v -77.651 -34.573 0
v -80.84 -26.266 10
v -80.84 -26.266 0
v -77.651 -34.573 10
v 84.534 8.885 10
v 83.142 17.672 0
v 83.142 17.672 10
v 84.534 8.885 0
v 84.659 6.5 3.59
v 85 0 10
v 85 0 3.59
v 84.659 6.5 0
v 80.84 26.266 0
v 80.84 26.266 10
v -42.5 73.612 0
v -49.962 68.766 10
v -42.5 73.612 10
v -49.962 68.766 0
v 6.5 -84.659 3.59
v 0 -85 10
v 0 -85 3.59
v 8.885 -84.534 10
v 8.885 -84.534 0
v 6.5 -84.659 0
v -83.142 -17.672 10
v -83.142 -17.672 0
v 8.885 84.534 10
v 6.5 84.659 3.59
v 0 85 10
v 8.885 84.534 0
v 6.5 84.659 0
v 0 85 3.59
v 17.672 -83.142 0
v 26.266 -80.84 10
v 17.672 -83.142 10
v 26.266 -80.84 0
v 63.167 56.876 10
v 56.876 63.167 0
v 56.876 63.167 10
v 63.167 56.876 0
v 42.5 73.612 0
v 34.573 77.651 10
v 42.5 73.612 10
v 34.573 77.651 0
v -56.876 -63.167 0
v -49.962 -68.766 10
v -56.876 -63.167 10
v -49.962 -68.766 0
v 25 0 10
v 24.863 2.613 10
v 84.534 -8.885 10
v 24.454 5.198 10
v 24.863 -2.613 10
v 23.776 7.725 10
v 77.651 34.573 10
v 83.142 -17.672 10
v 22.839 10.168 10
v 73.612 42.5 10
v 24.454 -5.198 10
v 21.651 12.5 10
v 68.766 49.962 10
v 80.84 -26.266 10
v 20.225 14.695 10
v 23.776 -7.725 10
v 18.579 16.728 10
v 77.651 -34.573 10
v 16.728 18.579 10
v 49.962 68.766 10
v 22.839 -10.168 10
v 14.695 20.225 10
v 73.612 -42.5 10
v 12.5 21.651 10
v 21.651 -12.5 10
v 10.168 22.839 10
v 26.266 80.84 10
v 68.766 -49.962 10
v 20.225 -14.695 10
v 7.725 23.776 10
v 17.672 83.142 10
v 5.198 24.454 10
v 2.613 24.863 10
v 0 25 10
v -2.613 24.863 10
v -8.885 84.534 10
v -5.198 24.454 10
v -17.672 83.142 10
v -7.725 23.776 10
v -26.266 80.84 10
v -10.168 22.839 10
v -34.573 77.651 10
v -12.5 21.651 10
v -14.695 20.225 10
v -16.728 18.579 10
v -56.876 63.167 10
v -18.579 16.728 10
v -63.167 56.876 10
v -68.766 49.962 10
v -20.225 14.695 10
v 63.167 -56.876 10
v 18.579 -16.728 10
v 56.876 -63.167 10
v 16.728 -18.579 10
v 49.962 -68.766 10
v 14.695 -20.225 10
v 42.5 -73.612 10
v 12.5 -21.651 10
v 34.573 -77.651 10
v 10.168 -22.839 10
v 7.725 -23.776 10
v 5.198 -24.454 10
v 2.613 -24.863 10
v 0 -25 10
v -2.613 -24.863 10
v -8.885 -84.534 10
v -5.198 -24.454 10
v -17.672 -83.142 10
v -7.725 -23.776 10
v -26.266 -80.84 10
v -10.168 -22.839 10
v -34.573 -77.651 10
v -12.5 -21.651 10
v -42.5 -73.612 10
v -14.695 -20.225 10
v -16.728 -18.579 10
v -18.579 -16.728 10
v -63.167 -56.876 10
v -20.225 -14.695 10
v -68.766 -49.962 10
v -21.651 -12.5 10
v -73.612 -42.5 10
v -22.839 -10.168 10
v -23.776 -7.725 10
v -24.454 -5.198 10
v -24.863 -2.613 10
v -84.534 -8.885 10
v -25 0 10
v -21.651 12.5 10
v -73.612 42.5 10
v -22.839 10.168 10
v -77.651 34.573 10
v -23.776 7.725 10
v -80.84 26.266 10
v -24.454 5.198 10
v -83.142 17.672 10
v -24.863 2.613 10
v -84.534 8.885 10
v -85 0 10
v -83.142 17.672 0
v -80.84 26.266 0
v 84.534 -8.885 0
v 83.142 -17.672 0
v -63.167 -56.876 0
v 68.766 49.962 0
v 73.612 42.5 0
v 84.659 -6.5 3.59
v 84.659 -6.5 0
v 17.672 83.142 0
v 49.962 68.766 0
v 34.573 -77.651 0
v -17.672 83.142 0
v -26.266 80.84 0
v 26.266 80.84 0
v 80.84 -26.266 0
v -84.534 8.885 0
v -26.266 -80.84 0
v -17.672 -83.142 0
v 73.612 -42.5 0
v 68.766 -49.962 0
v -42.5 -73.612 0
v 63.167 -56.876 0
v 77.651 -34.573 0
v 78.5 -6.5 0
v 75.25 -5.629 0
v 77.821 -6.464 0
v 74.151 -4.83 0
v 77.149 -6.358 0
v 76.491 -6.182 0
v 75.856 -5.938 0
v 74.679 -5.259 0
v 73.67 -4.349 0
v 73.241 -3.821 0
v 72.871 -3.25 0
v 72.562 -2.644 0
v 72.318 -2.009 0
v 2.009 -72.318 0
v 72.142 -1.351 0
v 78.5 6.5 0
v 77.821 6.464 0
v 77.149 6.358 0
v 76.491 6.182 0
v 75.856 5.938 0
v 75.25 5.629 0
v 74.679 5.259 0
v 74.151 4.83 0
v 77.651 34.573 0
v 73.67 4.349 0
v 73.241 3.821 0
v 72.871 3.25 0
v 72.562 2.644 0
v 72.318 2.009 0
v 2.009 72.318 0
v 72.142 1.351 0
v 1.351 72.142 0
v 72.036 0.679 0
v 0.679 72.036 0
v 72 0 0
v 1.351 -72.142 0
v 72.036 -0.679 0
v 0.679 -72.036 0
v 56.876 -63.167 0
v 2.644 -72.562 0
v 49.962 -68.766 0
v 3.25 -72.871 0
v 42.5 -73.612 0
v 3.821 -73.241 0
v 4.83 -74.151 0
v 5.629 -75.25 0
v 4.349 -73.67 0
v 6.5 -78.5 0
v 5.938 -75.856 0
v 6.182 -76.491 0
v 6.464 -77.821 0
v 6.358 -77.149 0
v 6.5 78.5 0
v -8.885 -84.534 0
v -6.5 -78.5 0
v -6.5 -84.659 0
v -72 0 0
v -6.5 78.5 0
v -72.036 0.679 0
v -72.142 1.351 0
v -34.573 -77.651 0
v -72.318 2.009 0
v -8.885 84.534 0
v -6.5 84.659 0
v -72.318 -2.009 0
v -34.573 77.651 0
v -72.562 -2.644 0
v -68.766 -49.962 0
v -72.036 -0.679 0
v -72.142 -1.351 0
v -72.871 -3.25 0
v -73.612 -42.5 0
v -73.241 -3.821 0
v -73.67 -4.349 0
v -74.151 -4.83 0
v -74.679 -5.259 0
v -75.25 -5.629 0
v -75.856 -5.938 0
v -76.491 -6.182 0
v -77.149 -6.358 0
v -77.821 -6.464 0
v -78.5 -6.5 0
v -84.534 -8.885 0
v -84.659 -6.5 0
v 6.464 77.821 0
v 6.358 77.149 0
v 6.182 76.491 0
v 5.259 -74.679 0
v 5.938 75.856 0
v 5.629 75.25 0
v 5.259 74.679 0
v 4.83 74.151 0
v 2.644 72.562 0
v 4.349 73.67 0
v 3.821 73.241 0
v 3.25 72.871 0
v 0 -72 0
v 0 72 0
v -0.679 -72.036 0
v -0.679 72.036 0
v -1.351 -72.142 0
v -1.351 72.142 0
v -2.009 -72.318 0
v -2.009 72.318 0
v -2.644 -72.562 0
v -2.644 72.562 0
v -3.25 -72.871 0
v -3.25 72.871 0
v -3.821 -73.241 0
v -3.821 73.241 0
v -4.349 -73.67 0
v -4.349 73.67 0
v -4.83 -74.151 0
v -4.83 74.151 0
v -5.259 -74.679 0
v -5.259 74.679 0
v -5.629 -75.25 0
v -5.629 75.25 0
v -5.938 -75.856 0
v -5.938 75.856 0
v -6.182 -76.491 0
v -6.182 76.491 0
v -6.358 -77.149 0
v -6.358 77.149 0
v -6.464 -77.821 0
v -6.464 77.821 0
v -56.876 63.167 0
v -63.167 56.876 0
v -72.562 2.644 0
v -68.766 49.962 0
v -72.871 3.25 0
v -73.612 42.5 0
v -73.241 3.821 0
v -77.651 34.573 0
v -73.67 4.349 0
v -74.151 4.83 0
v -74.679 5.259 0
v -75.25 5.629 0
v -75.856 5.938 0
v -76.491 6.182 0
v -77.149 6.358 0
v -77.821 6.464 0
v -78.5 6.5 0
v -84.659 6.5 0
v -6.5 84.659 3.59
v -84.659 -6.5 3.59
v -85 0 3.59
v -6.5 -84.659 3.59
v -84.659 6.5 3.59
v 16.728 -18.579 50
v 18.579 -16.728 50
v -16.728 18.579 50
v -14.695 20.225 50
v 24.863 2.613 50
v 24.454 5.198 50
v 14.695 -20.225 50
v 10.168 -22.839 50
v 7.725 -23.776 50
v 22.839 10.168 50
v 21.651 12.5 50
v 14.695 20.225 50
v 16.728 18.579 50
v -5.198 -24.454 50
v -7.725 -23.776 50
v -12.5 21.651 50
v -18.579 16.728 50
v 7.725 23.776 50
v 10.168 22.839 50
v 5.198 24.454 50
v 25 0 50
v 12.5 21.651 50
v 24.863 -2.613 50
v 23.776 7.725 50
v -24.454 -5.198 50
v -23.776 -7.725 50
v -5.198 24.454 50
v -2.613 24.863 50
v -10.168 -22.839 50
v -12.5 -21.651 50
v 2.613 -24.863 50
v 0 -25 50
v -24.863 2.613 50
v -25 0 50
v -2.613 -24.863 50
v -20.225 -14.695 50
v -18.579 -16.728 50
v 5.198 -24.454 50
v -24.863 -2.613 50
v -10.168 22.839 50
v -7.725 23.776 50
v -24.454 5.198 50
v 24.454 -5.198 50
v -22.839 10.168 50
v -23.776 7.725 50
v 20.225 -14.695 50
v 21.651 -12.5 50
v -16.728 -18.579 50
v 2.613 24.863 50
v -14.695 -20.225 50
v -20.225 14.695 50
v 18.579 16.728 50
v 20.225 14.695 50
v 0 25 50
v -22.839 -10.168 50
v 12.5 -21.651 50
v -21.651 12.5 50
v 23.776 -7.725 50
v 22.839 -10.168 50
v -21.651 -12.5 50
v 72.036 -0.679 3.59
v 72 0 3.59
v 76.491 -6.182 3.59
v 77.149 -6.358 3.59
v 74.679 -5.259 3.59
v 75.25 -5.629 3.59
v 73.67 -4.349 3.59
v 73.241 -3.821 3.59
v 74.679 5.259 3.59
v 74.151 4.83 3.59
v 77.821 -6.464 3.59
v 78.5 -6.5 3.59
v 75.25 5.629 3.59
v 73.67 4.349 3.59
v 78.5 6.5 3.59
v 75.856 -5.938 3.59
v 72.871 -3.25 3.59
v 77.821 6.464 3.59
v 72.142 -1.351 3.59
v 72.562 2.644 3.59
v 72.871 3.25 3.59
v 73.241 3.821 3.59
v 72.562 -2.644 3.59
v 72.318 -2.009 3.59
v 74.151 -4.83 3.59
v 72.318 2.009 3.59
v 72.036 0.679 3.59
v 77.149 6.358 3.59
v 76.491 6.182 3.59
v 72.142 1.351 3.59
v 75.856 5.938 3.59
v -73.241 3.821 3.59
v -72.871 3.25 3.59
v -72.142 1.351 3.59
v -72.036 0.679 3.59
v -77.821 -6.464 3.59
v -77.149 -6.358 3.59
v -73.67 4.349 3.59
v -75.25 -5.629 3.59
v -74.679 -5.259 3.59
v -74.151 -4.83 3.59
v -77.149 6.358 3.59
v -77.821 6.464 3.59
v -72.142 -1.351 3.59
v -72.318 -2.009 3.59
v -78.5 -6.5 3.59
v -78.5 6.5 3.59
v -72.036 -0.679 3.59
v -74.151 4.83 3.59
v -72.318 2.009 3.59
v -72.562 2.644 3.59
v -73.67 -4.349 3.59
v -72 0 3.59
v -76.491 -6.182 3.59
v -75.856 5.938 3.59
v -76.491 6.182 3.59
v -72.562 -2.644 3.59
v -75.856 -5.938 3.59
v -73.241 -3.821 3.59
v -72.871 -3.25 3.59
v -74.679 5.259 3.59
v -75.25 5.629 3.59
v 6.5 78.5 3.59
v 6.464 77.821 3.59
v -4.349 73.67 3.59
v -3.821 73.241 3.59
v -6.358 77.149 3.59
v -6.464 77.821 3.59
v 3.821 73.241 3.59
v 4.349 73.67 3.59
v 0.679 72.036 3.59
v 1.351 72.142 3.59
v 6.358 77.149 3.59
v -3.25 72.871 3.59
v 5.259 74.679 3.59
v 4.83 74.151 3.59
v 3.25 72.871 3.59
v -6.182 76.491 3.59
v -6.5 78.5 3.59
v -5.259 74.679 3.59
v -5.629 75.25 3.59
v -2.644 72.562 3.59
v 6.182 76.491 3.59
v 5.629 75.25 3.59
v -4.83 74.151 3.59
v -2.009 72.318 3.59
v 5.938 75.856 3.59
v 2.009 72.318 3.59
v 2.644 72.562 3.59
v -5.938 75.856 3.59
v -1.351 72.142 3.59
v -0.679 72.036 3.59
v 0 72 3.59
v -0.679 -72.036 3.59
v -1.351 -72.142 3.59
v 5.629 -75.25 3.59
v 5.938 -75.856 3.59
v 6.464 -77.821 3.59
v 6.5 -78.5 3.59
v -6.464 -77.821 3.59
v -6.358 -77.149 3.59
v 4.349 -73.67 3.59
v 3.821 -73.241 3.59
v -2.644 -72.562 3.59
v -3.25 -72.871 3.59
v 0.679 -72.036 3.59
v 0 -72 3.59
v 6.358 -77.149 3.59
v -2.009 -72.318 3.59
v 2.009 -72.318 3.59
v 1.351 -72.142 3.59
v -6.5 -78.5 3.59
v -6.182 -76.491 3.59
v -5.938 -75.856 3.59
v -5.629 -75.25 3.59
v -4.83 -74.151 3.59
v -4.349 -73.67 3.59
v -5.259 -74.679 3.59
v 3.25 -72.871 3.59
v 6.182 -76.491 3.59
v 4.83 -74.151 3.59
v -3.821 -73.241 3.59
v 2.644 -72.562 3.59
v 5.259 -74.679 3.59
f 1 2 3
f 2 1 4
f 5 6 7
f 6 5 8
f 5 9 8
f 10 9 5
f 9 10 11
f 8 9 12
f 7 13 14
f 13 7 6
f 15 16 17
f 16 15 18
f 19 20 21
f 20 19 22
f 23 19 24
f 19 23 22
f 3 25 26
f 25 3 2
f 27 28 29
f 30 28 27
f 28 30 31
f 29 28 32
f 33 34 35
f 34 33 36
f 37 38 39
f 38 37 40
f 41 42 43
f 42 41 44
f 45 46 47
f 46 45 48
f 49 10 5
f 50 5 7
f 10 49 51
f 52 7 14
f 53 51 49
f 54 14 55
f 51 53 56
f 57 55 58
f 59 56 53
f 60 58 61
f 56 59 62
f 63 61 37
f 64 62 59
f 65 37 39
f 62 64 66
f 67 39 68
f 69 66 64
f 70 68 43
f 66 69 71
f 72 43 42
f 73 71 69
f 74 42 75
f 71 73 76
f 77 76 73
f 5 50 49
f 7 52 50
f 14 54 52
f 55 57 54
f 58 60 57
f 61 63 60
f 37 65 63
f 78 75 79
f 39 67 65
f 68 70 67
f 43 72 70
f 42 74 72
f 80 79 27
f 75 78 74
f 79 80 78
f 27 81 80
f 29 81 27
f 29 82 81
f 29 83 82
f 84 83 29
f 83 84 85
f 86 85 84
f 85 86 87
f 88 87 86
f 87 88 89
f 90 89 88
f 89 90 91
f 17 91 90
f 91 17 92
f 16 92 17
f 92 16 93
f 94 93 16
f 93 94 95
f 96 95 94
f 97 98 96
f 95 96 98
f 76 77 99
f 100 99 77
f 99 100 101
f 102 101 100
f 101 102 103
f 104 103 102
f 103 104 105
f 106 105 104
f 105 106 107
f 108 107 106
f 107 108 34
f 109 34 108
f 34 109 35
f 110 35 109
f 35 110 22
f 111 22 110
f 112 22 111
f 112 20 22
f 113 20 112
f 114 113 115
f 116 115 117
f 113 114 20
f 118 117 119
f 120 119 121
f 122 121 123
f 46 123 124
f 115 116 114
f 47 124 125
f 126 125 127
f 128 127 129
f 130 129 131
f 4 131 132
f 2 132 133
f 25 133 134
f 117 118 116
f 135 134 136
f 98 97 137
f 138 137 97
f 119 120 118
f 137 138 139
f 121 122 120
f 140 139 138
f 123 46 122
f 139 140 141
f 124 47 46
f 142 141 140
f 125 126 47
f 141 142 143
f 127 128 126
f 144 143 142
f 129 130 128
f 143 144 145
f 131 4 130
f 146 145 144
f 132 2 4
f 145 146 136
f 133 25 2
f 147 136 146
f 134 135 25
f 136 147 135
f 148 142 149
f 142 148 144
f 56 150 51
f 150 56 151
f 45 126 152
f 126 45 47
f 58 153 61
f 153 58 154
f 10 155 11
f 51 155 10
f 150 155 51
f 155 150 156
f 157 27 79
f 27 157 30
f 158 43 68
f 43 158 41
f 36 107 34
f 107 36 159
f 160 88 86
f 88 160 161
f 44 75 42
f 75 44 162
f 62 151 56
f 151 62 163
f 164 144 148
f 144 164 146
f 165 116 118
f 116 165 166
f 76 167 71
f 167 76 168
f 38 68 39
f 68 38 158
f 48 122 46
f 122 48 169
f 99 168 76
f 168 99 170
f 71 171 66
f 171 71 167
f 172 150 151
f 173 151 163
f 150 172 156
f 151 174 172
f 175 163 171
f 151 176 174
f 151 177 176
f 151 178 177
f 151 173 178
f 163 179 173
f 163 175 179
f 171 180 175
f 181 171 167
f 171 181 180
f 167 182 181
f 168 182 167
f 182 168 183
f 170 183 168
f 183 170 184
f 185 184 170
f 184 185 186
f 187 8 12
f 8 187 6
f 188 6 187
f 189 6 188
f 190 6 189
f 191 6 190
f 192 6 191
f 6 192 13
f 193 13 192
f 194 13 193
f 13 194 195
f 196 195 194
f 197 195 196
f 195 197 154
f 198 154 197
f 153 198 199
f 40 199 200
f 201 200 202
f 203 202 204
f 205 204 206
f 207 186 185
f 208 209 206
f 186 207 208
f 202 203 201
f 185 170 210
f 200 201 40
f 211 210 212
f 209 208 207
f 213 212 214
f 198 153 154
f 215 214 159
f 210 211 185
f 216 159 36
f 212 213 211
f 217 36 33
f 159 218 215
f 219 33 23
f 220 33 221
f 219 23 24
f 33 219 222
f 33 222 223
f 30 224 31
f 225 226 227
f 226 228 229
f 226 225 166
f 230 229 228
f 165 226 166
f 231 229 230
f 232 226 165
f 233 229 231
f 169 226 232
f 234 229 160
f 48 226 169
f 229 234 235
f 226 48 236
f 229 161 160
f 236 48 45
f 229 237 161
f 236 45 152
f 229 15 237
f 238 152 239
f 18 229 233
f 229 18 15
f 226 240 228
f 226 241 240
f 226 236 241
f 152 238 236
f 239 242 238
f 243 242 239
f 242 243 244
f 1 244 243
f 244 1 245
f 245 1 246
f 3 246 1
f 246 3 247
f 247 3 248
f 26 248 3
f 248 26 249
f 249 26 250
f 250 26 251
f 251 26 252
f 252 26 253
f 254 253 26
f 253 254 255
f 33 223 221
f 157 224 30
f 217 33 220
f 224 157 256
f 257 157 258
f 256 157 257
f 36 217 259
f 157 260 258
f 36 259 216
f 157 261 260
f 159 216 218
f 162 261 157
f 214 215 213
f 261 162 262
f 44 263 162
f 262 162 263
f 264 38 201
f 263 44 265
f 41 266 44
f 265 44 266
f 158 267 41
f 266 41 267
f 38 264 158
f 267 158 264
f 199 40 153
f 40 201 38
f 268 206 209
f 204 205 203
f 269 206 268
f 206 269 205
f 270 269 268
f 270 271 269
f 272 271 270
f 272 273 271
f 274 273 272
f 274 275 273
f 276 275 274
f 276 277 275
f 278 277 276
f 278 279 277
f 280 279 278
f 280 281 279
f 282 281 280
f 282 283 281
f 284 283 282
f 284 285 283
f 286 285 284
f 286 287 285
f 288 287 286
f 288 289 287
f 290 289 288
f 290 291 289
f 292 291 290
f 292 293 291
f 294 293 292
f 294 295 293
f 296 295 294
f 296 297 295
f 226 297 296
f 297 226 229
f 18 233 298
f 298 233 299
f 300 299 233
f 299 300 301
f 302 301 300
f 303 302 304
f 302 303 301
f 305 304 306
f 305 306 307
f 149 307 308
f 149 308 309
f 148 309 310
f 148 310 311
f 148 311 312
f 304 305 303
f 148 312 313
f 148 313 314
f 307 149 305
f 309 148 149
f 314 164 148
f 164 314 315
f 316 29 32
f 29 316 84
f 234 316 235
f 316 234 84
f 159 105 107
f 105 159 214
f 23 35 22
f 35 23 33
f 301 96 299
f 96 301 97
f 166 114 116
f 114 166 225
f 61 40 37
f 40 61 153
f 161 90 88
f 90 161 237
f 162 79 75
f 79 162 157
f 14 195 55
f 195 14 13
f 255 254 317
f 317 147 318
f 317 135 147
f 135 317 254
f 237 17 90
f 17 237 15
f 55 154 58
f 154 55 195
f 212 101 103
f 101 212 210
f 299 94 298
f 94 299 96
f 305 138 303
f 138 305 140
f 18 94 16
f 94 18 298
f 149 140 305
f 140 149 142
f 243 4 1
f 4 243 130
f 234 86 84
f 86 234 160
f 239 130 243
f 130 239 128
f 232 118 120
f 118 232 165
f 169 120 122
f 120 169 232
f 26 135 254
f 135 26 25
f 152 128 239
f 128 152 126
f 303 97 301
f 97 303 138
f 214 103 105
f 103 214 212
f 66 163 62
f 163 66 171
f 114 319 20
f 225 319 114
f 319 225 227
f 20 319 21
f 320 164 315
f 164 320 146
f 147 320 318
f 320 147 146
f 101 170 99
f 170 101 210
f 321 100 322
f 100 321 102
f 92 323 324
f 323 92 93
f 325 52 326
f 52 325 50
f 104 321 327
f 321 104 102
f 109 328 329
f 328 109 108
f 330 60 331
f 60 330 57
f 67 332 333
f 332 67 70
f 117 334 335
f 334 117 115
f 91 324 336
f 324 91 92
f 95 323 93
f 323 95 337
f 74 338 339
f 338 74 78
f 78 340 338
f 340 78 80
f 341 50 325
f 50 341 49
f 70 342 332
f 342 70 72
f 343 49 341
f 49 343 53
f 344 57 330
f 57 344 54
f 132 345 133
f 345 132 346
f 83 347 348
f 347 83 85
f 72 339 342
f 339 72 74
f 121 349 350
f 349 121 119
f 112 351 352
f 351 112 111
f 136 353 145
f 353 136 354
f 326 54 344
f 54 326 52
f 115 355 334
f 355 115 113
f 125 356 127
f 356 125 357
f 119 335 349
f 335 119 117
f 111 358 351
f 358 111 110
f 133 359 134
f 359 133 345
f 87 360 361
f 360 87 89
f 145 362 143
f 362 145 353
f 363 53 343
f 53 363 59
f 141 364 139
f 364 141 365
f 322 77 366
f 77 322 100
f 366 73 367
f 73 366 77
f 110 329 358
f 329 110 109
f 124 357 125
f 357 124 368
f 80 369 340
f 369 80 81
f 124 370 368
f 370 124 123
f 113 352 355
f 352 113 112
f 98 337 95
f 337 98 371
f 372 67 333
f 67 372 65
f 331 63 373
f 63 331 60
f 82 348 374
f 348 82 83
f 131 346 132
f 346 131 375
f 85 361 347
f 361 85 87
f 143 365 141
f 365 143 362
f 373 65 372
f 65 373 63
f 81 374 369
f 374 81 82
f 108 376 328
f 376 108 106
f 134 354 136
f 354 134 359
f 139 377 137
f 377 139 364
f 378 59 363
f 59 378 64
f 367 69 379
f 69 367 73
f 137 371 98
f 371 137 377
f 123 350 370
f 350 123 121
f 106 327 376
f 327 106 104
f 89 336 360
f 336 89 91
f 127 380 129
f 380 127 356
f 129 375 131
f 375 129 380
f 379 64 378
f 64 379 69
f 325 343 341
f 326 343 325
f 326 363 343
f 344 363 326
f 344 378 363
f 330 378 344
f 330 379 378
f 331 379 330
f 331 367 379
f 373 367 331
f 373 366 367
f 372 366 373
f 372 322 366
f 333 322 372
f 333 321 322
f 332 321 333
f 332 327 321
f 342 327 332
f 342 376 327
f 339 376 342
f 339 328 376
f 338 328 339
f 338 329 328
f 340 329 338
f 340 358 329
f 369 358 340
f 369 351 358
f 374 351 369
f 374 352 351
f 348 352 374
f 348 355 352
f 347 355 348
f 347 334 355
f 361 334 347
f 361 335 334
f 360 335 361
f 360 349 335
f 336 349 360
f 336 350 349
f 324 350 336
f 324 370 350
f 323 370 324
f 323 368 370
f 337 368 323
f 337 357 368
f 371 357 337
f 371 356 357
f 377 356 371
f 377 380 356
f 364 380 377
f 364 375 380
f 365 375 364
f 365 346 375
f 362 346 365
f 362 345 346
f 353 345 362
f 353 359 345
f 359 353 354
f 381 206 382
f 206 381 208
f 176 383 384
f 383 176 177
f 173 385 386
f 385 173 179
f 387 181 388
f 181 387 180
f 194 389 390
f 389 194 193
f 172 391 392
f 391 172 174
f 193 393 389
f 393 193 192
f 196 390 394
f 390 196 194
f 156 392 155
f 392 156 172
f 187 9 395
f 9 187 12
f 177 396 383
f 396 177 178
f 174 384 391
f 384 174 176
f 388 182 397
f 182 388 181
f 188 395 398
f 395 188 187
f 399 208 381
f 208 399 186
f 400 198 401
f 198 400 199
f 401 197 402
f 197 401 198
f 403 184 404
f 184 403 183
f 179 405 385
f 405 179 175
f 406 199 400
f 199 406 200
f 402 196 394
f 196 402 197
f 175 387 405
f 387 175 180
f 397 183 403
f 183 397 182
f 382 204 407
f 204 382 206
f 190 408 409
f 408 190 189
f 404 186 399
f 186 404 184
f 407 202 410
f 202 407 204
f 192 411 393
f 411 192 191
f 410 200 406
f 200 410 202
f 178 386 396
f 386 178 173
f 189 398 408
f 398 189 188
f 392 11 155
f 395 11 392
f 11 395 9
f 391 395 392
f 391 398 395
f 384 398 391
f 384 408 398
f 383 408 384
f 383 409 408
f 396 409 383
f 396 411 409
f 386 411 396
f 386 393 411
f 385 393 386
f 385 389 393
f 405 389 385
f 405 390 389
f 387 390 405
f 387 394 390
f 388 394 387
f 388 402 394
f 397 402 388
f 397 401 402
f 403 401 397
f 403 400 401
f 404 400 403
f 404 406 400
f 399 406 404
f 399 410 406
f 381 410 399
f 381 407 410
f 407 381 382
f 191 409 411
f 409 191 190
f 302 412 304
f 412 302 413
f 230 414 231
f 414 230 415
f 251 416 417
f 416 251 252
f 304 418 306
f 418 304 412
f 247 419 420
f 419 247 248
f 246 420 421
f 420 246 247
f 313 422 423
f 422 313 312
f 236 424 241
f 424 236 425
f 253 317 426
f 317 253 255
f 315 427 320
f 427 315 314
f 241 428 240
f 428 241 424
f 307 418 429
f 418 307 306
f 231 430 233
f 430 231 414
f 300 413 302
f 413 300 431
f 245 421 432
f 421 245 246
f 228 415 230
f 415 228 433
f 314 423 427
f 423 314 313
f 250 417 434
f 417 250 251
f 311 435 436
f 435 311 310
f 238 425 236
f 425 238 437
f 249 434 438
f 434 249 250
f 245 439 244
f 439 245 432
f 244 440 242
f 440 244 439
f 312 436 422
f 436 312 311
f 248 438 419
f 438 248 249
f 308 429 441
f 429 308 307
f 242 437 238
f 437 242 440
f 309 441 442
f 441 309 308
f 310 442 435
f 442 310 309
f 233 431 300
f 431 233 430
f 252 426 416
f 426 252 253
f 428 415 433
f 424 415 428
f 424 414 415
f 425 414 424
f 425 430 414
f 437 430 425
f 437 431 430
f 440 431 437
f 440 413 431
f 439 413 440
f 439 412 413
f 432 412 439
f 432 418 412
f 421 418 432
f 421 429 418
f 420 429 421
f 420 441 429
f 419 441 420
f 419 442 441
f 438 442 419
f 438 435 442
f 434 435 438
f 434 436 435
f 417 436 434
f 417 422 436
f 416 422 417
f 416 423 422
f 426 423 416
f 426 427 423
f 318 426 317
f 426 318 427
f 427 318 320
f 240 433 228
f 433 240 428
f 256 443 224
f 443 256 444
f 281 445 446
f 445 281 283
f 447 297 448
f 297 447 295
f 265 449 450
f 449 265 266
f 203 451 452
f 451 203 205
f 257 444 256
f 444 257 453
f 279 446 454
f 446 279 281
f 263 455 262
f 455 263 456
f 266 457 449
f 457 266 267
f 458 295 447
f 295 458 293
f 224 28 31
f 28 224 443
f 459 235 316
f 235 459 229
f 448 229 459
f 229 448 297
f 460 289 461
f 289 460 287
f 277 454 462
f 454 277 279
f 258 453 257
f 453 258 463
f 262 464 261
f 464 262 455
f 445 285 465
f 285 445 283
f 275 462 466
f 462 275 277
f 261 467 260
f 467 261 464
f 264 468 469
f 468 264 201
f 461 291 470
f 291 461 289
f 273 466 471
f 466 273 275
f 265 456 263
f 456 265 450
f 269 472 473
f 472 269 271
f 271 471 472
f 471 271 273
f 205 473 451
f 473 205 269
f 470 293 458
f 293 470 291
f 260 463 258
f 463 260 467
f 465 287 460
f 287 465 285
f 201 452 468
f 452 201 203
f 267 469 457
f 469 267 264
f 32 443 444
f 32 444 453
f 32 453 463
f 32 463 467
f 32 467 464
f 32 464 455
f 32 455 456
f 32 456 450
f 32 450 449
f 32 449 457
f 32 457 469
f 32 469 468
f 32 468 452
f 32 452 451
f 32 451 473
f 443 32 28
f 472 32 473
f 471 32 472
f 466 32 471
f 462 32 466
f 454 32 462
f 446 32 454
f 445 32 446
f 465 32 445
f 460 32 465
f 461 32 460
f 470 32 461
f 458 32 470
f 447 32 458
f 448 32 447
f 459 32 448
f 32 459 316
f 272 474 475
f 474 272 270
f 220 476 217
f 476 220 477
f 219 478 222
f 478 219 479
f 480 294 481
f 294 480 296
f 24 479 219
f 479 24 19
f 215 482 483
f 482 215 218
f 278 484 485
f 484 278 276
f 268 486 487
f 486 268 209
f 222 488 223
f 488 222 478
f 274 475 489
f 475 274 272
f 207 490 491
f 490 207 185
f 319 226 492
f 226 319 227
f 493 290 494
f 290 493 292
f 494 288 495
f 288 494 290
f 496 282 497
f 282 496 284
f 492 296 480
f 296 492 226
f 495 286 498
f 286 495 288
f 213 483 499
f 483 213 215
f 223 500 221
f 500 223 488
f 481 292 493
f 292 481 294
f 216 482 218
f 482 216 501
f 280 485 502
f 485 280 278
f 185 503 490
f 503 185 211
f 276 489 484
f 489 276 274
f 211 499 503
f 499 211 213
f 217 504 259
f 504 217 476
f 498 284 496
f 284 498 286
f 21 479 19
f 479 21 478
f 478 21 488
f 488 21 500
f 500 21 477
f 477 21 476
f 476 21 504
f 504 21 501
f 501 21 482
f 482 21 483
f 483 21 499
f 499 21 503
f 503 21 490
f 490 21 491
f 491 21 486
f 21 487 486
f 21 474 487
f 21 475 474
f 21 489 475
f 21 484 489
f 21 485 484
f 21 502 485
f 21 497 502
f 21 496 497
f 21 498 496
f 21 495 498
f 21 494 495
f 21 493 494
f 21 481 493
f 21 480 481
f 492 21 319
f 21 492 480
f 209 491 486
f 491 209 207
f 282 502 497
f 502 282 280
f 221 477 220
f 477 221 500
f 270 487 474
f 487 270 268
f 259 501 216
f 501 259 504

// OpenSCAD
// Globals

$fn = 60;
eps = 0.01;

base_diameter = 170;
base_height   = 10;

post_diameter = 50;
post_height = base_height + 40;

notch_diameter = 13;
notch_height   = 3.6;
notch_length   = 30;

notch_inset = base_diameter/2 - notch_diameter/2;

// Geometry

module notch(h, d, l)
{
    hull()
    {
        cylinder(h=h, d=d);
        translate([l, 0, 0])
        {
            cylinder(h=h, d=d);
        }
    }
}

*notch(notch_height, notch_diameter, notch_length);

difference()
{
    union()
    {
        cylinder(h=base_height, d=base_diameter);
        cylinder(h=post_height, d=post_diameter);
    }

    translate([notch_inset, 0, -eps])
    {
        notch(notch_height, notch_diameter, notch_length);
    }
    translate([-(notch_inset+notch_length), 0, -eps])
    {
        notch(notch_height, notch_diameter, notch_length);
    }
    translate([0, notch_inset, -eps])
    rotate(90)
    {
        notch(notch_height, notch_diameter, notch_length);
    }
    translate([0, -notch_inset, -eps])
    rotate(-90)
    {
        notch(notch_height, notch_diameter, notch_length);
    }
}
